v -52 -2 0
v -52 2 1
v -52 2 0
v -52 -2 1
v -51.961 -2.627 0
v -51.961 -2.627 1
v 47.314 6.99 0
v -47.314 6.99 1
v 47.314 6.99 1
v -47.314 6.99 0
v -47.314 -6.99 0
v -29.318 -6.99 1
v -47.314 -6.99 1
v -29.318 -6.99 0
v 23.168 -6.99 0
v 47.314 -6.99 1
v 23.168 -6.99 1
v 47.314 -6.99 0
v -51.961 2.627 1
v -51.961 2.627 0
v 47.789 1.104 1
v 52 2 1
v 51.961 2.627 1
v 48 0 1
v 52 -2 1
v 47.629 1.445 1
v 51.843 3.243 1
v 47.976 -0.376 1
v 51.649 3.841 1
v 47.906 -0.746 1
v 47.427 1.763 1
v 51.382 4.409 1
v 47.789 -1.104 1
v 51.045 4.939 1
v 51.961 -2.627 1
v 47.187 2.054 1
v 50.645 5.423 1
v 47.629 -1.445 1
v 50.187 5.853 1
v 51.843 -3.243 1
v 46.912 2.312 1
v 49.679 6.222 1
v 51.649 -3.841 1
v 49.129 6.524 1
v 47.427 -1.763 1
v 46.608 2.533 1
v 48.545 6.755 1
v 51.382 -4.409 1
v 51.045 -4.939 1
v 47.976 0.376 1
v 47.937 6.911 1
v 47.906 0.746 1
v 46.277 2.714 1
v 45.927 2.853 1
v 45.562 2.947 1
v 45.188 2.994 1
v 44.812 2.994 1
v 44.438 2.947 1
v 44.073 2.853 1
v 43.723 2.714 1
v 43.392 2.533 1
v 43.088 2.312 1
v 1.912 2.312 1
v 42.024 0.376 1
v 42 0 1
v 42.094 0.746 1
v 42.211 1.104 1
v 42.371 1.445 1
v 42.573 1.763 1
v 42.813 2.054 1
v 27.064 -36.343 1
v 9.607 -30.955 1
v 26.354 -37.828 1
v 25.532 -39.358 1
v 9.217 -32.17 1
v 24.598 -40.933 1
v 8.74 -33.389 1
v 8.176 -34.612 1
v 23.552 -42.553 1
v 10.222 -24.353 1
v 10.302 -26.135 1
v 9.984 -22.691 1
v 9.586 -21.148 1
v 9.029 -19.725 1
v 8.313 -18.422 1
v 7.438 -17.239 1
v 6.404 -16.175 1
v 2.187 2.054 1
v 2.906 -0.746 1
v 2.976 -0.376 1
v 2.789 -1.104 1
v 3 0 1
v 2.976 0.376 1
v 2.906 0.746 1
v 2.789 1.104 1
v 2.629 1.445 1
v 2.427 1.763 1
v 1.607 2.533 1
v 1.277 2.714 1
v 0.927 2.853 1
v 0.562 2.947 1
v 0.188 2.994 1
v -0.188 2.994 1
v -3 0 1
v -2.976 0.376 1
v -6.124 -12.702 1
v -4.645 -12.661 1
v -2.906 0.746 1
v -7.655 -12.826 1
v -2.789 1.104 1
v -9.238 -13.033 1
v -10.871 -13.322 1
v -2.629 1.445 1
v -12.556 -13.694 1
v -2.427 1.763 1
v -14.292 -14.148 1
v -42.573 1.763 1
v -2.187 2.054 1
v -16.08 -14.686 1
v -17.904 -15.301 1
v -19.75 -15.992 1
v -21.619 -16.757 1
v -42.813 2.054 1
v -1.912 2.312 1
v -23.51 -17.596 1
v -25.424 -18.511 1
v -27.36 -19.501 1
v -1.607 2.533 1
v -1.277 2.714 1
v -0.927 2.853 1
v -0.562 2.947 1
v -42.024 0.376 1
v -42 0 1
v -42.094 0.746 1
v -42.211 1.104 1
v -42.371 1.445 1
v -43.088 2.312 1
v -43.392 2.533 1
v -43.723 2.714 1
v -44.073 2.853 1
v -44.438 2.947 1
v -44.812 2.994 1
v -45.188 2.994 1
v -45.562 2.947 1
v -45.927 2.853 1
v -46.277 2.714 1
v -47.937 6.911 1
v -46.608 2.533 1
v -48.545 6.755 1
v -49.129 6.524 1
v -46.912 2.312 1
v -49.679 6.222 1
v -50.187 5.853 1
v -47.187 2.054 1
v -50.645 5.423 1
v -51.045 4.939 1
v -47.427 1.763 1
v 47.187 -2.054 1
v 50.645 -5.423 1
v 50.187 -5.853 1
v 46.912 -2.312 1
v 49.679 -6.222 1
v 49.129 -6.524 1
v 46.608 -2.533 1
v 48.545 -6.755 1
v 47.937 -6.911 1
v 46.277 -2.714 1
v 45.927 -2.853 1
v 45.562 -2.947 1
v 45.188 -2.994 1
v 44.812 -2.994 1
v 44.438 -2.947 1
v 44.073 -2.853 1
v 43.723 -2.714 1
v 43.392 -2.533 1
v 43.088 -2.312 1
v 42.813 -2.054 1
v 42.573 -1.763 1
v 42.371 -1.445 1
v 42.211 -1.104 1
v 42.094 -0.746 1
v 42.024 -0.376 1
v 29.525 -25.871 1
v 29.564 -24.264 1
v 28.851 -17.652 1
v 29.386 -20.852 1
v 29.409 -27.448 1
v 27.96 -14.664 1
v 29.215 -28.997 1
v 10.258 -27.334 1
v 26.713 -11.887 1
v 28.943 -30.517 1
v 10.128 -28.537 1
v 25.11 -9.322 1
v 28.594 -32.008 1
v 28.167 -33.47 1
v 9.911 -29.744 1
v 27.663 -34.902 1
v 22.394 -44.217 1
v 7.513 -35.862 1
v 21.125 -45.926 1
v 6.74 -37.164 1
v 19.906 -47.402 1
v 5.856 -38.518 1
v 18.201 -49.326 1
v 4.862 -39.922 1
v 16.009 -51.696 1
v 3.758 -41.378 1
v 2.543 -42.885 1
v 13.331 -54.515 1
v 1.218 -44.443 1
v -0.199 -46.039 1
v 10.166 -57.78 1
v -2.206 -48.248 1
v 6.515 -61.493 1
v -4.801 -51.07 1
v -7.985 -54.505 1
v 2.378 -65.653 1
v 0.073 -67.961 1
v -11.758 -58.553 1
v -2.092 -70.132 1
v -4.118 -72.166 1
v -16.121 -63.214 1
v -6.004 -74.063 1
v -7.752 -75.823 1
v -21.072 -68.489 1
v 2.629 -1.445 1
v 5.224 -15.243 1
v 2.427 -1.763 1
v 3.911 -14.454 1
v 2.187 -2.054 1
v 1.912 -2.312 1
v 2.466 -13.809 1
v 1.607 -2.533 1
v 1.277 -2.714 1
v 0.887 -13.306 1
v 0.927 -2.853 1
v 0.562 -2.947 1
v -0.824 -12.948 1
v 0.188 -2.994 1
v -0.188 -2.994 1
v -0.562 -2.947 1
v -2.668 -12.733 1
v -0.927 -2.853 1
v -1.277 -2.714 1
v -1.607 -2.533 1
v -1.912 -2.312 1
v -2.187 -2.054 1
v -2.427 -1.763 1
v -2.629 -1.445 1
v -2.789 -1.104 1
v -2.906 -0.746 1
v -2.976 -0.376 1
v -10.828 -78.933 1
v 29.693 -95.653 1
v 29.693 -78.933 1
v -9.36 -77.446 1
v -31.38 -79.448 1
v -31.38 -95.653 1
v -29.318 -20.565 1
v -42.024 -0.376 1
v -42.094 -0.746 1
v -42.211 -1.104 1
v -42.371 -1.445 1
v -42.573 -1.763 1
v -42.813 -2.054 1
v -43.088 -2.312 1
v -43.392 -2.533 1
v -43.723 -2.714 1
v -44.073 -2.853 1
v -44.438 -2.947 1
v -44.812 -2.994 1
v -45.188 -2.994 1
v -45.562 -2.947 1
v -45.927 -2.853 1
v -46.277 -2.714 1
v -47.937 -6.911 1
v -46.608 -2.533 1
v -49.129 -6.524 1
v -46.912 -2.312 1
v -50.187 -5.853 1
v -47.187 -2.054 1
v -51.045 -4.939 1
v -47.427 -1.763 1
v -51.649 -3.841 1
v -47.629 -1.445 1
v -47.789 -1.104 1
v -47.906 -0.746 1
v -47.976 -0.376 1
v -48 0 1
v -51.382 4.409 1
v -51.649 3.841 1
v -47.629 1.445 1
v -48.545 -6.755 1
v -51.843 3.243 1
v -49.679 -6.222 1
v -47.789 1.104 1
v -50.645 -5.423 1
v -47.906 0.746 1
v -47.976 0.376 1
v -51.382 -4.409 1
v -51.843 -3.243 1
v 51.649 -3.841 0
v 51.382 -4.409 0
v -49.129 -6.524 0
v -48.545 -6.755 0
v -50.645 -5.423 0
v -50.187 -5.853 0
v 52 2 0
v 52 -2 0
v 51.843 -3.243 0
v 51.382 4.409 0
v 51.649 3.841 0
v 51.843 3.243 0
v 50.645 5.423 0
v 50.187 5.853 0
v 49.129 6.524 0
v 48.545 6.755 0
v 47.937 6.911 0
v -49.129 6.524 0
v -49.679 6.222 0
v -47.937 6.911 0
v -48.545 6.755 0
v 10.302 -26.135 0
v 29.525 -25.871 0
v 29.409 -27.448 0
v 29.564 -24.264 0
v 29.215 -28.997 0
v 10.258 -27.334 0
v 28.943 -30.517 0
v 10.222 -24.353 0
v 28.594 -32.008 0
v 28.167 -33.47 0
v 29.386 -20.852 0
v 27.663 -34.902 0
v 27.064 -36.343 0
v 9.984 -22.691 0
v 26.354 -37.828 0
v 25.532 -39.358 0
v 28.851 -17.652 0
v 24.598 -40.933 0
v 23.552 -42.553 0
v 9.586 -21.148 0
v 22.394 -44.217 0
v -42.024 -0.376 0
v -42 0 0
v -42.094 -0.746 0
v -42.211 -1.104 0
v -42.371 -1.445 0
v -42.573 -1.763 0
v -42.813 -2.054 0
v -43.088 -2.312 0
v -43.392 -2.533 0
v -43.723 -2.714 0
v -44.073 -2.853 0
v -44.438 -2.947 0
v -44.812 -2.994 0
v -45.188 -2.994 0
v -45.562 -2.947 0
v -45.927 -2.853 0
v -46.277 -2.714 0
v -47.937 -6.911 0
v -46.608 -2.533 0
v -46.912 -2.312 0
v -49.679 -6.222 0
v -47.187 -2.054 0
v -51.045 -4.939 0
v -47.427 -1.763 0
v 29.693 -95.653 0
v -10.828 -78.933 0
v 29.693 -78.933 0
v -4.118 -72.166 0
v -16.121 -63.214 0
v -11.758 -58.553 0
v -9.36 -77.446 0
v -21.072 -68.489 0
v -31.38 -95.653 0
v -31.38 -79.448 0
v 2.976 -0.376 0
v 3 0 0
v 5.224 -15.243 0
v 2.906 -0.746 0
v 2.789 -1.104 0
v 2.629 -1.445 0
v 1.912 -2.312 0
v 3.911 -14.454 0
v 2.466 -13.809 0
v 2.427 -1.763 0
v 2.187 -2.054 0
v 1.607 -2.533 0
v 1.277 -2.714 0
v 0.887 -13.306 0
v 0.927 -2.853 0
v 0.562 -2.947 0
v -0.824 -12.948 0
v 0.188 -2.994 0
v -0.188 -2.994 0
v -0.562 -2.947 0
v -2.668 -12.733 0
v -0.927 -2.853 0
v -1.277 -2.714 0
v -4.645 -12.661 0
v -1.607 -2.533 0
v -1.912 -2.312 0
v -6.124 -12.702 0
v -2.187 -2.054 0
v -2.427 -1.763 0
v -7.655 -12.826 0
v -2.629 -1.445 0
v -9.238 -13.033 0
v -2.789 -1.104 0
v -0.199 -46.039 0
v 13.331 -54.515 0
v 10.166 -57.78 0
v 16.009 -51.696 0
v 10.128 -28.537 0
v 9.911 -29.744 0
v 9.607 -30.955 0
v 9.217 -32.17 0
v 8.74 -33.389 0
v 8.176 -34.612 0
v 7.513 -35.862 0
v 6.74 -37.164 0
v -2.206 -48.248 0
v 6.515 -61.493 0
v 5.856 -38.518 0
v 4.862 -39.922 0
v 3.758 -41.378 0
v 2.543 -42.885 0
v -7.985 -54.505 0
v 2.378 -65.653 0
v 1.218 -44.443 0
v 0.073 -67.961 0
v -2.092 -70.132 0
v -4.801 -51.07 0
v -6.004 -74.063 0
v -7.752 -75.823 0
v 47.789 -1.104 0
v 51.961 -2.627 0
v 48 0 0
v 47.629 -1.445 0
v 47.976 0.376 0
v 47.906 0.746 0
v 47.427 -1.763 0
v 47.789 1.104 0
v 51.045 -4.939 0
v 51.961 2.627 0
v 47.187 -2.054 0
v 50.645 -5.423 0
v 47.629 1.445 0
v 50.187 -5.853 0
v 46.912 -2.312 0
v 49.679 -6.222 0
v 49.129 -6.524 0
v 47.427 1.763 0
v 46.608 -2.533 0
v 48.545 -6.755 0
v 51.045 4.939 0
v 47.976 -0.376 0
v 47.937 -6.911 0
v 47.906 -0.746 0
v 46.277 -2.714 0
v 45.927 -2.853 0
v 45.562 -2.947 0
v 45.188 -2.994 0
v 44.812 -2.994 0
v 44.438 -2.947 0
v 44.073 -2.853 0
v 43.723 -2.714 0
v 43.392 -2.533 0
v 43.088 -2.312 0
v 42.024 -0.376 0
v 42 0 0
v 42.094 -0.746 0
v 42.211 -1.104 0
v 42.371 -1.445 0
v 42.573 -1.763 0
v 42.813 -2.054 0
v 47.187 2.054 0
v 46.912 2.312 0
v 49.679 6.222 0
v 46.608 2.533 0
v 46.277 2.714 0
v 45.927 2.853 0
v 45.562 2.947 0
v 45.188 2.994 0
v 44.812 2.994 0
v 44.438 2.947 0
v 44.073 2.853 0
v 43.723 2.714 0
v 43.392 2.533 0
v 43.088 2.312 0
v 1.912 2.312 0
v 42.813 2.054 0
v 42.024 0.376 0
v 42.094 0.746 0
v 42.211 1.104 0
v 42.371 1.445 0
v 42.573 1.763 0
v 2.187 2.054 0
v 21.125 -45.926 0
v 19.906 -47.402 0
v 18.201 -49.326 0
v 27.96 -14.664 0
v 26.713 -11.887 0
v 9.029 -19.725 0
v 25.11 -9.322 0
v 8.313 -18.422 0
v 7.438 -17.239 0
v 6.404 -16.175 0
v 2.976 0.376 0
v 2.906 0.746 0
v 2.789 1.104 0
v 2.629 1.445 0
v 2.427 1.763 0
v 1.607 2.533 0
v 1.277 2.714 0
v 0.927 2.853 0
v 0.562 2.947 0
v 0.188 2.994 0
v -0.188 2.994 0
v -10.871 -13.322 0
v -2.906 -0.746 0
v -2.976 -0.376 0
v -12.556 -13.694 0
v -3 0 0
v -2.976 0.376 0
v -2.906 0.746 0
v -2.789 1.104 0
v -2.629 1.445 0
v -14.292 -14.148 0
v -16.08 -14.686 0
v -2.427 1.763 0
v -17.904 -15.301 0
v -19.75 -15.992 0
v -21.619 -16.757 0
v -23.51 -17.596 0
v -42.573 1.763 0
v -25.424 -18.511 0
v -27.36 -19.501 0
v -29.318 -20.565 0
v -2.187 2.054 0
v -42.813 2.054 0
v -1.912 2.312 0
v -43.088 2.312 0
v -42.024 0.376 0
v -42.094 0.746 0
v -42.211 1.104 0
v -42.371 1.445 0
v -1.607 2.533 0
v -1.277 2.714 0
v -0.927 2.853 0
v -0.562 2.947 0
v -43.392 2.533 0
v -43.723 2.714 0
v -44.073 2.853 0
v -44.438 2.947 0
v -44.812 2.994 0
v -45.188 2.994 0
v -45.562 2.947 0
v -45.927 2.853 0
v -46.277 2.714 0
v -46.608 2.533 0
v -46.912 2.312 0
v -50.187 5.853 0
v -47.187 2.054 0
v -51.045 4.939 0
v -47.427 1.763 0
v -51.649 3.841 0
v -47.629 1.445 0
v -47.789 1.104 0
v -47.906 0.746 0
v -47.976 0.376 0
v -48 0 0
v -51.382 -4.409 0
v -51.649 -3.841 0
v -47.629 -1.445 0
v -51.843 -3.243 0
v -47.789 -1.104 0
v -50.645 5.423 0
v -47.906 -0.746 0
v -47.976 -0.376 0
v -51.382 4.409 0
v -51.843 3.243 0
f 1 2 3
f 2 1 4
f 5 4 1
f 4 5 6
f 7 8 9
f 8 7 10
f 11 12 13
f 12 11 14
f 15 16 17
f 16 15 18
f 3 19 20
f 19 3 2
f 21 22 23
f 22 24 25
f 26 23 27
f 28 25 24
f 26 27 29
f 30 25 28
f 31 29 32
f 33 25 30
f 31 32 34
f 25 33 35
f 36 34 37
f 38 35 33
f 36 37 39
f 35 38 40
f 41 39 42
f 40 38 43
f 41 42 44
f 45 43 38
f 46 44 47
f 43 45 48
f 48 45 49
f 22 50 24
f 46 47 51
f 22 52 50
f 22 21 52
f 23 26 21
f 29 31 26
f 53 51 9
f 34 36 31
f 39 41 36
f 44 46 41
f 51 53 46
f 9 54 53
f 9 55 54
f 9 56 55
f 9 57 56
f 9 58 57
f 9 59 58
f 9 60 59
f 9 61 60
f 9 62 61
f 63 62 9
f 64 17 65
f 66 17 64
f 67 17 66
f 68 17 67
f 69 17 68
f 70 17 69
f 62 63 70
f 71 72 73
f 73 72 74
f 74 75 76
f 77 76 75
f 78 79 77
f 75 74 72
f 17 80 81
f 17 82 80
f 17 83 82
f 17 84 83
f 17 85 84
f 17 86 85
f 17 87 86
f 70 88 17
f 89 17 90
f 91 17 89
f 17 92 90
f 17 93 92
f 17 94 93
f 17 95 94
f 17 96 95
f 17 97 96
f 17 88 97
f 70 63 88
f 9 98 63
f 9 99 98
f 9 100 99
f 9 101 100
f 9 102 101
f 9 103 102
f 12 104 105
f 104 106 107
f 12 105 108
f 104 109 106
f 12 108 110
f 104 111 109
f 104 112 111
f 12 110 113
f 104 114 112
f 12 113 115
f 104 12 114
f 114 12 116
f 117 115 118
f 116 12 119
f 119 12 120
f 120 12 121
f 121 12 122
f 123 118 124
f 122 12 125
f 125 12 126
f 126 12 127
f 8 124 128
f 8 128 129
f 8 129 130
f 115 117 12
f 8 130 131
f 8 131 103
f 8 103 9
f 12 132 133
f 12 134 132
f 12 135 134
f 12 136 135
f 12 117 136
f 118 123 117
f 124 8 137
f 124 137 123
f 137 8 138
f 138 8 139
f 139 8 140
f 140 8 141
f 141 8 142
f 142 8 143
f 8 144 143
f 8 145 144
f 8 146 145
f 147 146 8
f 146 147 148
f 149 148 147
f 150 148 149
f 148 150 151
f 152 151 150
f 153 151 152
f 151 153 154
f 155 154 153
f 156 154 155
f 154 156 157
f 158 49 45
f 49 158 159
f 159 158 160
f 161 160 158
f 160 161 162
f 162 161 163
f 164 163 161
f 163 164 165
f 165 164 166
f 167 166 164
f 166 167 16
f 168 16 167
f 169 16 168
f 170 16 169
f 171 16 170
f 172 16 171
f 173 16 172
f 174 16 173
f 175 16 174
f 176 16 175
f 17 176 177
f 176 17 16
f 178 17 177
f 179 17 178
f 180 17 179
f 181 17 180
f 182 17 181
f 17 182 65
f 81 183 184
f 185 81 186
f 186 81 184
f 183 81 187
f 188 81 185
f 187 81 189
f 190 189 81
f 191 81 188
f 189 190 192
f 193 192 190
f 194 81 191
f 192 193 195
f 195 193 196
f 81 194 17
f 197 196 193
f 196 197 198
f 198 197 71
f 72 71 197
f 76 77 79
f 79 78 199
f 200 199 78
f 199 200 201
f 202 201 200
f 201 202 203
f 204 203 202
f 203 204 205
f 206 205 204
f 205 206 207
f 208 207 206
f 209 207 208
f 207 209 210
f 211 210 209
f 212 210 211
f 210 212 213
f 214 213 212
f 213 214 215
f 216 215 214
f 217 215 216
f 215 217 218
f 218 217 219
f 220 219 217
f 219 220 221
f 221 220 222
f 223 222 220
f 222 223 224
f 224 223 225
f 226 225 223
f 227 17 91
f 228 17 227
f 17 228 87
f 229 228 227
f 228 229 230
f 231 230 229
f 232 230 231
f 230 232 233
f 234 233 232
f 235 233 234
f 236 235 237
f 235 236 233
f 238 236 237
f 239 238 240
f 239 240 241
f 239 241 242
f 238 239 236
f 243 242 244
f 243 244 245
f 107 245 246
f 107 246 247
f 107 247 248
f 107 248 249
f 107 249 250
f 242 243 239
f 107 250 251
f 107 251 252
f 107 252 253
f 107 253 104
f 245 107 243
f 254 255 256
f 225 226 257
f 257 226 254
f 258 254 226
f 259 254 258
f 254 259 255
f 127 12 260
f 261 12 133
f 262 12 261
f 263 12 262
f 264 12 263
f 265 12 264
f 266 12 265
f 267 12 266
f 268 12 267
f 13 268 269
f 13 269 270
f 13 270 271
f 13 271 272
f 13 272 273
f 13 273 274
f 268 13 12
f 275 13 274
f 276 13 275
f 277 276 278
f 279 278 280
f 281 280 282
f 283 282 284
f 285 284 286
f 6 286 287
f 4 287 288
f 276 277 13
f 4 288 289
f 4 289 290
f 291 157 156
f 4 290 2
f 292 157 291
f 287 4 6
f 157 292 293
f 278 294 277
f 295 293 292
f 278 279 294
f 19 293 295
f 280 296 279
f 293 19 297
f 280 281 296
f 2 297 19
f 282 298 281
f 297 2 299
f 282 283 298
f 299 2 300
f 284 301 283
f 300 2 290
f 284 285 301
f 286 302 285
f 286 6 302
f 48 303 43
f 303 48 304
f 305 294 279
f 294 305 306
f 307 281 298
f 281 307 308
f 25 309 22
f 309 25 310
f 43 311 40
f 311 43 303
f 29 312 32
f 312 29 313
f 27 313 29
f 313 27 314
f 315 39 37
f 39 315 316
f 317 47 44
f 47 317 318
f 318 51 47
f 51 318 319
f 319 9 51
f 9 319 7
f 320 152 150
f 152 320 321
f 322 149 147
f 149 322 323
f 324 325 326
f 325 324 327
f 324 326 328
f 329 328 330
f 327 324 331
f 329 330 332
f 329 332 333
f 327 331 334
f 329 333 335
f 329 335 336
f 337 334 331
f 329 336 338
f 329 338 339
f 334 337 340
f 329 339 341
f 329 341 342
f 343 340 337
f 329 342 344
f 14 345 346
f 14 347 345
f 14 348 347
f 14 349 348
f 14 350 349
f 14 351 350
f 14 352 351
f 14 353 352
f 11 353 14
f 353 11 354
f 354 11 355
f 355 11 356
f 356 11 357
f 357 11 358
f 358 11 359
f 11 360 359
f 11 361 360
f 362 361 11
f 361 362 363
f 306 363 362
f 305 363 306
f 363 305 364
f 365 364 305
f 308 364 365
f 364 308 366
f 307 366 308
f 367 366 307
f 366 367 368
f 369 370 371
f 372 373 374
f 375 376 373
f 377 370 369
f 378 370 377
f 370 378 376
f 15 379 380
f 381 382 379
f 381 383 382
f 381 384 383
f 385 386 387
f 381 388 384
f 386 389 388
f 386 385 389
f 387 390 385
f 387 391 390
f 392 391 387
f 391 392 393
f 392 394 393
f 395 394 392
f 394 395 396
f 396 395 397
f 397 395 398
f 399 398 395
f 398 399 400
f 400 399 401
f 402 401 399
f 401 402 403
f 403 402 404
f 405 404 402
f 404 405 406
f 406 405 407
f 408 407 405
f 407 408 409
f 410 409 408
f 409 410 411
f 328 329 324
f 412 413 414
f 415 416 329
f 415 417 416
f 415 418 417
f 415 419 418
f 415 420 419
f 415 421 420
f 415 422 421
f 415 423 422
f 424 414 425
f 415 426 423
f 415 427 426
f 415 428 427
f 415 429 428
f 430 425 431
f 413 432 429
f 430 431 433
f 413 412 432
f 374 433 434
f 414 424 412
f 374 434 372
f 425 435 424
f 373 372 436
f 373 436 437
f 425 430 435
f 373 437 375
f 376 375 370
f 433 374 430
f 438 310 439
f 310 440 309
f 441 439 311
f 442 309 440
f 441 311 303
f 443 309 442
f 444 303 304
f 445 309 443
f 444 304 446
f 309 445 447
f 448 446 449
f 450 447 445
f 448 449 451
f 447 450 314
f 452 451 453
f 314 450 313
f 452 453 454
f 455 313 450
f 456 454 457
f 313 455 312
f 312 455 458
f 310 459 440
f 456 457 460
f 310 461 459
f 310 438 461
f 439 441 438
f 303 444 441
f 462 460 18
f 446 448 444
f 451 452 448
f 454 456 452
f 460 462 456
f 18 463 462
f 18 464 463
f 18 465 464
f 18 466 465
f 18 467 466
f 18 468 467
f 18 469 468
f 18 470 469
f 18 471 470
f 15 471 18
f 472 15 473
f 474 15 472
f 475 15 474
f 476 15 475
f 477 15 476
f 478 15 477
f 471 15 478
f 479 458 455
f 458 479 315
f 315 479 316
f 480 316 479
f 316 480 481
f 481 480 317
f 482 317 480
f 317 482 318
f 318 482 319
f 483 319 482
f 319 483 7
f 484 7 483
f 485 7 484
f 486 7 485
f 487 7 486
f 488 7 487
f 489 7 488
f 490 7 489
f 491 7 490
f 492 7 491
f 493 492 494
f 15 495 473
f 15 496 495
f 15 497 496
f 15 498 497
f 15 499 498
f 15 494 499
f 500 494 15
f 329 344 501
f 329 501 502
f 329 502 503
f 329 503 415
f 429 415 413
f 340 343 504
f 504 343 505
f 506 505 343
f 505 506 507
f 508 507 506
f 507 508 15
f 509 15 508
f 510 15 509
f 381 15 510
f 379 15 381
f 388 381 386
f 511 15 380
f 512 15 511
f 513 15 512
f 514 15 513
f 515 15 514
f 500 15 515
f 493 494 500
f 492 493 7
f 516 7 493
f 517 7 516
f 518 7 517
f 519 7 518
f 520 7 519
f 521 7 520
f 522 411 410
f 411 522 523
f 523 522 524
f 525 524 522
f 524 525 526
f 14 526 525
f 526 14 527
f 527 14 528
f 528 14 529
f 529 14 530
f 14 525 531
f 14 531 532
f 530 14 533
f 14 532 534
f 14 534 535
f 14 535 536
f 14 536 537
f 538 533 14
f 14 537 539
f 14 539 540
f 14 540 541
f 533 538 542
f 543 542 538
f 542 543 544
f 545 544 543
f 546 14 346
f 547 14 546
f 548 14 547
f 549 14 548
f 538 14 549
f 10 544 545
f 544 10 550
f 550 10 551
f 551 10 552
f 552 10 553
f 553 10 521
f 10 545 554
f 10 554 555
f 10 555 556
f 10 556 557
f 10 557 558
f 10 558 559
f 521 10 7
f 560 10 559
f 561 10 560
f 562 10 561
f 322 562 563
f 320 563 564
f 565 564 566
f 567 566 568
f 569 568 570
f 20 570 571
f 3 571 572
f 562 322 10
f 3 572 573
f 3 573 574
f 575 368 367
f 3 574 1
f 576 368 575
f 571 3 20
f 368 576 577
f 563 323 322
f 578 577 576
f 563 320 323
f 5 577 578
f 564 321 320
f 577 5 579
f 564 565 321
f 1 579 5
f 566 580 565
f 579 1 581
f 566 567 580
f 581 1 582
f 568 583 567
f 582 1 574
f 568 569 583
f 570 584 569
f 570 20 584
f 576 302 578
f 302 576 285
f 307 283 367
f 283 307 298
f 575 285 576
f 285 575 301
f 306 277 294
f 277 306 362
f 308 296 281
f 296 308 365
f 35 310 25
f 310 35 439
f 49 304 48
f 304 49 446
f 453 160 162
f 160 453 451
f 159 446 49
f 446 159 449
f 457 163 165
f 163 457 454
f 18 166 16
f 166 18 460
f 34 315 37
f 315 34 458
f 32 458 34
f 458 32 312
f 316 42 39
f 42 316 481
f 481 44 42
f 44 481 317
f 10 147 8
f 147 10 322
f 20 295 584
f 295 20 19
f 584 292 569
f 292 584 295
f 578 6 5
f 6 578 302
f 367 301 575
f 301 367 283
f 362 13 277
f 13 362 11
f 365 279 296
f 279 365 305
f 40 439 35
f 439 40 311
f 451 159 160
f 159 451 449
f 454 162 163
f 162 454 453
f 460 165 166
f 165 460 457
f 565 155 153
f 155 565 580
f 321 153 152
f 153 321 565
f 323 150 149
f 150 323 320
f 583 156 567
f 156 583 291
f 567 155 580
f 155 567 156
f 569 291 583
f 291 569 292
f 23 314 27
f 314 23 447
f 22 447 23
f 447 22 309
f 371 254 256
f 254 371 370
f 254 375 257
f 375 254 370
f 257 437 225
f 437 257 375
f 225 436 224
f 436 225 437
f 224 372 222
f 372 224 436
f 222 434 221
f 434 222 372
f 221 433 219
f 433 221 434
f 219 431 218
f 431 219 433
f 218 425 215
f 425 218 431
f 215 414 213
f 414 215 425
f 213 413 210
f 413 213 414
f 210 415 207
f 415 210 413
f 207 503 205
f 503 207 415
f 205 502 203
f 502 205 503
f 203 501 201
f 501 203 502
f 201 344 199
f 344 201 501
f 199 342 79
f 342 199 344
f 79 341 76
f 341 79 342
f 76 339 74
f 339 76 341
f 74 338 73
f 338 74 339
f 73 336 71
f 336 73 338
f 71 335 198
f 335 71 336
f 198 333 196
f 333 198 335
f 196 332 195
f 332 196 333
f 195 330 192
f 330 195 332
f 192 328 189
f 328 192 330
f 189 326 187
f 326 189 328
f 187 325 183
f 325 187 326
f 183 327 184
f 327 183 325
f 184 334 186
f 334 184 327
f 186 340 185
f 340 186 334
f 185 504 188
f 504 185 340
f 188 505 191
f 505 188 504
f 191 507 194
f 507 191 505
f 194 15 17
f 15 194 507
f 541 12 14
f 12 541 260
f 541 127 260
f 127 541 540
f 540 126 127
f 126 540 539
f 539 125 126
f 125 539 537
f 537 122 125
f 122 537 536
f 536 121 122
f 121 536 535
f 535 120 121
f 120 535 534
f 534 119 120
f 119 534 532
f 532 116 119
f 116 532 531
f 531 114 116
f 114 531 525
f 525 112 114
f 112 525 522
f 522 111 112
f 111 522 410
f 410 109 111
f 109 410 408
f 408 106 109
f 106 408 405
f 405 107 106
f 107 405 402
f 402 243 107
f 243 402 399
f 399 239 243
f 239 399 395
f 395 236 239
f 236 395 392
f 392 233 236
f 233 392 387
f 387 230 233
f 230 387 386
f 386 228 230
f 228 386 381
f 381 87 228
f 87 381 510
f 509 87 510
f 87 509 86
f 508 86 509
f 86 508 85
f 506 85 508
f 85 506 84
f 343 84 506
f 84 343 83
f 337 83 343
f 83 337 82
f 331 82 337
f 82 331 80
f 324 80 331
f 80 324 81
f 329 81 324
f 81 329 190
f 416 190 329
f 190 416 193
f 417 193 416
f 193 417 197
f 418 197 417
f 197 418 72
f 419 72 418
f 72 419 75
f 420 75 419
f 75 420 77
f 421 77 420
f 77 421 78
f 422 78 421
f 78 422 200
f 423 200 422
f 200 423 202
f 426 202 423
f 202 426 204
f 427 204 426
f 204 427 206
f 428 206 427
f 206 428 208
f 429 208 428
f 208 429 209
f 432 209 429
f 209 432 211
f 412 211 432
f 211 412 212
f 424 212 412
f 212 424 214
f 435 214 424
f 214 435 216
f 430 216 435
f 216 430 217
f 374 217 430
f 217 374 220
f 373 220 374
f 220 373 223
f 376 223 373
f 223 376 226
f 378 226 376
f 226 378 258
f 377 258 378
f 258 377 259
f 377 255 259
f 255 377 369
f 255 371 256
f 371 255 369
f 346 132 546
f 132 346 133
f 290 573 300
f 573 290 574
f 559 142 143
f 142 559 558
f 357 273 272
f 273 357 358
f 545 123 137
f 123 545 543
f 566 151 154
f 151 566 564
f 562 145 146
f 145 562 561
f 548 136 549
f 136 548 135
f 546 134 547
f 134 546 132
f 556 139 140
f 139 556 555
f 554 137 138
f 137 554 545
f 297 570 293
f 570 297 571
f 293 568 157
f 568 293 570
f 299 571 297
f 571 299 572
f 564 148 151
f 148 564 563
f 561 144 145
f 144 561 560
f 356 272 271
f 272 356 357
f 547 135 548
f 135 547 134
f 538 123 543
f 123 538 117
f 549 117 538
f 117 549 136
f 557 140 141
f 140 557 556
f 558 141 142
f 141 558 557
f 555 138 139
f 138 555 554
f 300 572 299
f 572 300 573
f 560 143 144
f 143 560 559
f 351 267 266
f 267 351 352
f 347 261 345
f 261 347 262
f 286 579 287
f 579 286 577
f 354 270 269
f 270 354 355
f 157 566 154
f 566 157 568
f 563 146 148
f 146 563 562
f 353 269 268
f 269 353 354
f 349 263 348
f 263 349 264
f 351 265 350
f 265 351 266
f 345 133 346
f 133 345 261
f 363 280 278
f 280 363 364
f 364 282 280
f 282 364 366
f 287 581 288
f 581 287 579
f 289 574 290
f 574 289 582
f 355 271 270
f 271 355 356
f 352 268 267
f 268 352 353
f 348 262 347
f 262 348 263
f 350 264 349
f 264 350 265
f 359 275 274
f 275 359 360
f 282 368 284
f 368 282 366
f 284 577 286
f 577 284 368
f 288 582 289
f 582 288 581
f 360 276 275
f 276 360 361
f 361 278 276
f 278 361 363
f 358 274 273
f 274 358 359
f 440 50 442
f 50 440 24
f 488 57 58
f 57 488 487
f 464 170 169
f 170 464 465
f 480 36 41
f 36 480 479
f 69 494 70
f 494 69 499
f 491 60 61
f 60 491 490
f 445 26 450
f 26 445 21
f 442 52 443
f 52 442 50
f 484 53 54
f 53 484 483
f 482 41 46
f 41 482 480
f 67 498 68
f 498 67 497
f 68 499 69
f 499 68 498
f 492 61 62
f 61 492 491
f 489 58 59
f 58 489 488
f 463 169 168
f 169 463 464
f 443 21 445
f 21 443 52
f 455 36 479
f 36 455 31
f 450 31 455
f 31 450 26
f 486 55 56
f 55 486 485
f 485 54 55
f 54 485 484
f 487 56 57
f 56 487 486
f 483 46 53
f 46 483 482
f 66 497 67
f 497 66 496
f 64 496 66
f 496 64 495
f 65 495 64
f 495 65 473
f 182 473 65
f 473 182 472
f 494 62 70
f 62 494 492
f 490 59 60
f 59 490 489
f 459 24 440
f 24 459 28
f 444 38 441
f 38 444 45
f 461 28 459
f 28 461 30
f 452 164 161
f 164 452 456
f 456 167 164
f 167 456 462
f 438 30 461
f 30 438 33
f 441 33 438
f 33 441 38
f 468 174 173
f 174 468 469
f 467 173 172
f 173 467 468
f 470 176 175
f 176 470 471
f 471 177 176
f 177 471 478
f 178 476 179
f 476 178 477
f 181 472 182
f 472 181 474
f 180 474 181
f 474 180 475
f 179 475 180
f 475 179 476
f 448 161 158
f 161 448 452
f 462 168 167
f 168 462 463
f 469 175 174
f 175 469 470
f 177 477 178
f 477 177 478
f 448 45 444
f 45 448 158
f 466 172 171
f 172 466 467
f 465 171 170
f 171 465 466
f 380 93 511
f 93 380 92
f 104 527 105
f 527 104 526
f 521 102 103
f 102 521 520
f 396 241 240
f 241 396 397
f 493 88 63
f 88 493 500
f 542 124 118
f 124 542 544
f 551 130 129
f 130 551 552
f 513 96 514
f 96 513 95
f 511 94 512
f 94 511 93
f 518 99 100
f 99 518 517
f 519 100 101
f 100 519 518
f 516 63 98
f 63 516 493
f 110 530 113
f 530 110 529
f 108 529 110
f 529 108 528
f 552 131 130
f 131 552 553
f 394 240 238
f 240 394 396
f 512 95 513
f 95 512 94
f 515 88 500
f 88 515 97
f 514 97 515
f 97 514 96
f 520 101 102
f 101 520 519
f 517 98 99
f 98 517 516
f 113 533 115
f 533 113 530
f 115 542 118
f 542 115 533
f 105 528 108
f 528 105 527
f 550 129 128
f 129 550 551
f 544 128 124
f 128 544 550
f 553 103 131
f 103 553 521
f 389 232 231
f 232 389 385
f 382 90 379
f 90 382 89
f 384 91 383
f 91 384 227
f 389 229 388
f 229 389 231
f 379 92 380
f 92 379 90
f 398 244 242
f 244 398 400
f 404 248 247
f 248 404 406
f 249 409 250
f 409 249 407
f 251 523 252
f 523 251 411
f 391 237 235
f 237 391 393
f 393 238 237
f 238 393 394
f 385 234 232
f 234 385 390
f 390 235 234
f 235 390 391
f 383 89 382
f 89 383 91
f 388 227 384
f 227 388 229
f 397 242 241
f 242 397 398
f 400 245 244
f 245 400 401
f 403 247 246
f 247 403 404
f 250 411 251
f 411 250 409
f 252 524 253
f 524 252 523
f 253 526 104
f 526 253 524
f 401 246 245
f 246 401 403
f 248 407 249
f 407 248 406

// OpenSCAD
$fn = 50;


difference() {
	union() {
		translate(v = [0, 0, 0]) {
			rotate(a = [0, 0, 0]) {
				hull() {
					translate(v = [-47.0000000000, 2.0000000000, 0]) {
						rotate(a = [0, 0, 0]) {
							translate(v = [0, 0, 0]) {
								rotate(a = [0, 0, 0]) {
									cylinder(h = 1, r = 5);
								}
							}
						}
					}
					translate(v = [47.0000000000, 2.0000000000, 0]) {
						rotate(a = [0, 0, 0]) {
							translate(v = [0, 0, 0]) {
								rotate(a = [0, 0, 0]) {
									cylinder(h = 1, r = 5);
								}
							}
						}
					}
					translate(v = [-47.0000000000, -2.0000000000, 0]) {
						rotate(a = [0, 0, 0]) {
							translate(v = [0, 0, 0]) {
								rotate(a = [0, 0, 0]) {
									cylinder(h = 1, r = 5);
								}
							}
						}
					}
					translate(v = [47.0000000000, -2.0000000000, 0]) {
						rotate(a = [0, 0, 0]) {
							translate(v = [0, 0, 0]) {
								rotate(a = [0, 0, 0]) {
									cylinder(h = 1, r = 5);
								}
							}
						}
					}
				}
			}
		}
		translate(v = [0, 0, 0]) {
			rotate(a = [0, 0, 0]) {
				linear_extrude(height = 1) {
					text(font = "DejaVu Sans Mono:style=Bold", halign = "center", size = 95.0000000000, text = "2", valign = "top");
				}
			}
		}
	}
	union() {
		translate(v = [-45.0000000000, 0.0000000000, -125.0000000000]) {
			rotate(a = [0, 0, 0]) {
				cylinder(h = 250, r = 3.0000000000);
			}
		}
		translate(v = [45.0000000000, 0.0000000000, -125.0000000000]) {
			rotate(a = [0, 0, 0]) {
				cylinder(h = 250, r = 3.0000000000);
			}
		}
		translate(v = [45.0000000000, 0.0000000000, -125.0000000000]) {
			rotate(a = [0, 0, 0]) {
				cylinder(h = 250, r = 3.0000000000);
			}
		}
		translate(v = [0, 0, -125.0000000000]) {
			rotate(a = [0, 0, 0]) {
				cylinder(h = 250, r = 3.0000000000);
			}
		}
	}
}
